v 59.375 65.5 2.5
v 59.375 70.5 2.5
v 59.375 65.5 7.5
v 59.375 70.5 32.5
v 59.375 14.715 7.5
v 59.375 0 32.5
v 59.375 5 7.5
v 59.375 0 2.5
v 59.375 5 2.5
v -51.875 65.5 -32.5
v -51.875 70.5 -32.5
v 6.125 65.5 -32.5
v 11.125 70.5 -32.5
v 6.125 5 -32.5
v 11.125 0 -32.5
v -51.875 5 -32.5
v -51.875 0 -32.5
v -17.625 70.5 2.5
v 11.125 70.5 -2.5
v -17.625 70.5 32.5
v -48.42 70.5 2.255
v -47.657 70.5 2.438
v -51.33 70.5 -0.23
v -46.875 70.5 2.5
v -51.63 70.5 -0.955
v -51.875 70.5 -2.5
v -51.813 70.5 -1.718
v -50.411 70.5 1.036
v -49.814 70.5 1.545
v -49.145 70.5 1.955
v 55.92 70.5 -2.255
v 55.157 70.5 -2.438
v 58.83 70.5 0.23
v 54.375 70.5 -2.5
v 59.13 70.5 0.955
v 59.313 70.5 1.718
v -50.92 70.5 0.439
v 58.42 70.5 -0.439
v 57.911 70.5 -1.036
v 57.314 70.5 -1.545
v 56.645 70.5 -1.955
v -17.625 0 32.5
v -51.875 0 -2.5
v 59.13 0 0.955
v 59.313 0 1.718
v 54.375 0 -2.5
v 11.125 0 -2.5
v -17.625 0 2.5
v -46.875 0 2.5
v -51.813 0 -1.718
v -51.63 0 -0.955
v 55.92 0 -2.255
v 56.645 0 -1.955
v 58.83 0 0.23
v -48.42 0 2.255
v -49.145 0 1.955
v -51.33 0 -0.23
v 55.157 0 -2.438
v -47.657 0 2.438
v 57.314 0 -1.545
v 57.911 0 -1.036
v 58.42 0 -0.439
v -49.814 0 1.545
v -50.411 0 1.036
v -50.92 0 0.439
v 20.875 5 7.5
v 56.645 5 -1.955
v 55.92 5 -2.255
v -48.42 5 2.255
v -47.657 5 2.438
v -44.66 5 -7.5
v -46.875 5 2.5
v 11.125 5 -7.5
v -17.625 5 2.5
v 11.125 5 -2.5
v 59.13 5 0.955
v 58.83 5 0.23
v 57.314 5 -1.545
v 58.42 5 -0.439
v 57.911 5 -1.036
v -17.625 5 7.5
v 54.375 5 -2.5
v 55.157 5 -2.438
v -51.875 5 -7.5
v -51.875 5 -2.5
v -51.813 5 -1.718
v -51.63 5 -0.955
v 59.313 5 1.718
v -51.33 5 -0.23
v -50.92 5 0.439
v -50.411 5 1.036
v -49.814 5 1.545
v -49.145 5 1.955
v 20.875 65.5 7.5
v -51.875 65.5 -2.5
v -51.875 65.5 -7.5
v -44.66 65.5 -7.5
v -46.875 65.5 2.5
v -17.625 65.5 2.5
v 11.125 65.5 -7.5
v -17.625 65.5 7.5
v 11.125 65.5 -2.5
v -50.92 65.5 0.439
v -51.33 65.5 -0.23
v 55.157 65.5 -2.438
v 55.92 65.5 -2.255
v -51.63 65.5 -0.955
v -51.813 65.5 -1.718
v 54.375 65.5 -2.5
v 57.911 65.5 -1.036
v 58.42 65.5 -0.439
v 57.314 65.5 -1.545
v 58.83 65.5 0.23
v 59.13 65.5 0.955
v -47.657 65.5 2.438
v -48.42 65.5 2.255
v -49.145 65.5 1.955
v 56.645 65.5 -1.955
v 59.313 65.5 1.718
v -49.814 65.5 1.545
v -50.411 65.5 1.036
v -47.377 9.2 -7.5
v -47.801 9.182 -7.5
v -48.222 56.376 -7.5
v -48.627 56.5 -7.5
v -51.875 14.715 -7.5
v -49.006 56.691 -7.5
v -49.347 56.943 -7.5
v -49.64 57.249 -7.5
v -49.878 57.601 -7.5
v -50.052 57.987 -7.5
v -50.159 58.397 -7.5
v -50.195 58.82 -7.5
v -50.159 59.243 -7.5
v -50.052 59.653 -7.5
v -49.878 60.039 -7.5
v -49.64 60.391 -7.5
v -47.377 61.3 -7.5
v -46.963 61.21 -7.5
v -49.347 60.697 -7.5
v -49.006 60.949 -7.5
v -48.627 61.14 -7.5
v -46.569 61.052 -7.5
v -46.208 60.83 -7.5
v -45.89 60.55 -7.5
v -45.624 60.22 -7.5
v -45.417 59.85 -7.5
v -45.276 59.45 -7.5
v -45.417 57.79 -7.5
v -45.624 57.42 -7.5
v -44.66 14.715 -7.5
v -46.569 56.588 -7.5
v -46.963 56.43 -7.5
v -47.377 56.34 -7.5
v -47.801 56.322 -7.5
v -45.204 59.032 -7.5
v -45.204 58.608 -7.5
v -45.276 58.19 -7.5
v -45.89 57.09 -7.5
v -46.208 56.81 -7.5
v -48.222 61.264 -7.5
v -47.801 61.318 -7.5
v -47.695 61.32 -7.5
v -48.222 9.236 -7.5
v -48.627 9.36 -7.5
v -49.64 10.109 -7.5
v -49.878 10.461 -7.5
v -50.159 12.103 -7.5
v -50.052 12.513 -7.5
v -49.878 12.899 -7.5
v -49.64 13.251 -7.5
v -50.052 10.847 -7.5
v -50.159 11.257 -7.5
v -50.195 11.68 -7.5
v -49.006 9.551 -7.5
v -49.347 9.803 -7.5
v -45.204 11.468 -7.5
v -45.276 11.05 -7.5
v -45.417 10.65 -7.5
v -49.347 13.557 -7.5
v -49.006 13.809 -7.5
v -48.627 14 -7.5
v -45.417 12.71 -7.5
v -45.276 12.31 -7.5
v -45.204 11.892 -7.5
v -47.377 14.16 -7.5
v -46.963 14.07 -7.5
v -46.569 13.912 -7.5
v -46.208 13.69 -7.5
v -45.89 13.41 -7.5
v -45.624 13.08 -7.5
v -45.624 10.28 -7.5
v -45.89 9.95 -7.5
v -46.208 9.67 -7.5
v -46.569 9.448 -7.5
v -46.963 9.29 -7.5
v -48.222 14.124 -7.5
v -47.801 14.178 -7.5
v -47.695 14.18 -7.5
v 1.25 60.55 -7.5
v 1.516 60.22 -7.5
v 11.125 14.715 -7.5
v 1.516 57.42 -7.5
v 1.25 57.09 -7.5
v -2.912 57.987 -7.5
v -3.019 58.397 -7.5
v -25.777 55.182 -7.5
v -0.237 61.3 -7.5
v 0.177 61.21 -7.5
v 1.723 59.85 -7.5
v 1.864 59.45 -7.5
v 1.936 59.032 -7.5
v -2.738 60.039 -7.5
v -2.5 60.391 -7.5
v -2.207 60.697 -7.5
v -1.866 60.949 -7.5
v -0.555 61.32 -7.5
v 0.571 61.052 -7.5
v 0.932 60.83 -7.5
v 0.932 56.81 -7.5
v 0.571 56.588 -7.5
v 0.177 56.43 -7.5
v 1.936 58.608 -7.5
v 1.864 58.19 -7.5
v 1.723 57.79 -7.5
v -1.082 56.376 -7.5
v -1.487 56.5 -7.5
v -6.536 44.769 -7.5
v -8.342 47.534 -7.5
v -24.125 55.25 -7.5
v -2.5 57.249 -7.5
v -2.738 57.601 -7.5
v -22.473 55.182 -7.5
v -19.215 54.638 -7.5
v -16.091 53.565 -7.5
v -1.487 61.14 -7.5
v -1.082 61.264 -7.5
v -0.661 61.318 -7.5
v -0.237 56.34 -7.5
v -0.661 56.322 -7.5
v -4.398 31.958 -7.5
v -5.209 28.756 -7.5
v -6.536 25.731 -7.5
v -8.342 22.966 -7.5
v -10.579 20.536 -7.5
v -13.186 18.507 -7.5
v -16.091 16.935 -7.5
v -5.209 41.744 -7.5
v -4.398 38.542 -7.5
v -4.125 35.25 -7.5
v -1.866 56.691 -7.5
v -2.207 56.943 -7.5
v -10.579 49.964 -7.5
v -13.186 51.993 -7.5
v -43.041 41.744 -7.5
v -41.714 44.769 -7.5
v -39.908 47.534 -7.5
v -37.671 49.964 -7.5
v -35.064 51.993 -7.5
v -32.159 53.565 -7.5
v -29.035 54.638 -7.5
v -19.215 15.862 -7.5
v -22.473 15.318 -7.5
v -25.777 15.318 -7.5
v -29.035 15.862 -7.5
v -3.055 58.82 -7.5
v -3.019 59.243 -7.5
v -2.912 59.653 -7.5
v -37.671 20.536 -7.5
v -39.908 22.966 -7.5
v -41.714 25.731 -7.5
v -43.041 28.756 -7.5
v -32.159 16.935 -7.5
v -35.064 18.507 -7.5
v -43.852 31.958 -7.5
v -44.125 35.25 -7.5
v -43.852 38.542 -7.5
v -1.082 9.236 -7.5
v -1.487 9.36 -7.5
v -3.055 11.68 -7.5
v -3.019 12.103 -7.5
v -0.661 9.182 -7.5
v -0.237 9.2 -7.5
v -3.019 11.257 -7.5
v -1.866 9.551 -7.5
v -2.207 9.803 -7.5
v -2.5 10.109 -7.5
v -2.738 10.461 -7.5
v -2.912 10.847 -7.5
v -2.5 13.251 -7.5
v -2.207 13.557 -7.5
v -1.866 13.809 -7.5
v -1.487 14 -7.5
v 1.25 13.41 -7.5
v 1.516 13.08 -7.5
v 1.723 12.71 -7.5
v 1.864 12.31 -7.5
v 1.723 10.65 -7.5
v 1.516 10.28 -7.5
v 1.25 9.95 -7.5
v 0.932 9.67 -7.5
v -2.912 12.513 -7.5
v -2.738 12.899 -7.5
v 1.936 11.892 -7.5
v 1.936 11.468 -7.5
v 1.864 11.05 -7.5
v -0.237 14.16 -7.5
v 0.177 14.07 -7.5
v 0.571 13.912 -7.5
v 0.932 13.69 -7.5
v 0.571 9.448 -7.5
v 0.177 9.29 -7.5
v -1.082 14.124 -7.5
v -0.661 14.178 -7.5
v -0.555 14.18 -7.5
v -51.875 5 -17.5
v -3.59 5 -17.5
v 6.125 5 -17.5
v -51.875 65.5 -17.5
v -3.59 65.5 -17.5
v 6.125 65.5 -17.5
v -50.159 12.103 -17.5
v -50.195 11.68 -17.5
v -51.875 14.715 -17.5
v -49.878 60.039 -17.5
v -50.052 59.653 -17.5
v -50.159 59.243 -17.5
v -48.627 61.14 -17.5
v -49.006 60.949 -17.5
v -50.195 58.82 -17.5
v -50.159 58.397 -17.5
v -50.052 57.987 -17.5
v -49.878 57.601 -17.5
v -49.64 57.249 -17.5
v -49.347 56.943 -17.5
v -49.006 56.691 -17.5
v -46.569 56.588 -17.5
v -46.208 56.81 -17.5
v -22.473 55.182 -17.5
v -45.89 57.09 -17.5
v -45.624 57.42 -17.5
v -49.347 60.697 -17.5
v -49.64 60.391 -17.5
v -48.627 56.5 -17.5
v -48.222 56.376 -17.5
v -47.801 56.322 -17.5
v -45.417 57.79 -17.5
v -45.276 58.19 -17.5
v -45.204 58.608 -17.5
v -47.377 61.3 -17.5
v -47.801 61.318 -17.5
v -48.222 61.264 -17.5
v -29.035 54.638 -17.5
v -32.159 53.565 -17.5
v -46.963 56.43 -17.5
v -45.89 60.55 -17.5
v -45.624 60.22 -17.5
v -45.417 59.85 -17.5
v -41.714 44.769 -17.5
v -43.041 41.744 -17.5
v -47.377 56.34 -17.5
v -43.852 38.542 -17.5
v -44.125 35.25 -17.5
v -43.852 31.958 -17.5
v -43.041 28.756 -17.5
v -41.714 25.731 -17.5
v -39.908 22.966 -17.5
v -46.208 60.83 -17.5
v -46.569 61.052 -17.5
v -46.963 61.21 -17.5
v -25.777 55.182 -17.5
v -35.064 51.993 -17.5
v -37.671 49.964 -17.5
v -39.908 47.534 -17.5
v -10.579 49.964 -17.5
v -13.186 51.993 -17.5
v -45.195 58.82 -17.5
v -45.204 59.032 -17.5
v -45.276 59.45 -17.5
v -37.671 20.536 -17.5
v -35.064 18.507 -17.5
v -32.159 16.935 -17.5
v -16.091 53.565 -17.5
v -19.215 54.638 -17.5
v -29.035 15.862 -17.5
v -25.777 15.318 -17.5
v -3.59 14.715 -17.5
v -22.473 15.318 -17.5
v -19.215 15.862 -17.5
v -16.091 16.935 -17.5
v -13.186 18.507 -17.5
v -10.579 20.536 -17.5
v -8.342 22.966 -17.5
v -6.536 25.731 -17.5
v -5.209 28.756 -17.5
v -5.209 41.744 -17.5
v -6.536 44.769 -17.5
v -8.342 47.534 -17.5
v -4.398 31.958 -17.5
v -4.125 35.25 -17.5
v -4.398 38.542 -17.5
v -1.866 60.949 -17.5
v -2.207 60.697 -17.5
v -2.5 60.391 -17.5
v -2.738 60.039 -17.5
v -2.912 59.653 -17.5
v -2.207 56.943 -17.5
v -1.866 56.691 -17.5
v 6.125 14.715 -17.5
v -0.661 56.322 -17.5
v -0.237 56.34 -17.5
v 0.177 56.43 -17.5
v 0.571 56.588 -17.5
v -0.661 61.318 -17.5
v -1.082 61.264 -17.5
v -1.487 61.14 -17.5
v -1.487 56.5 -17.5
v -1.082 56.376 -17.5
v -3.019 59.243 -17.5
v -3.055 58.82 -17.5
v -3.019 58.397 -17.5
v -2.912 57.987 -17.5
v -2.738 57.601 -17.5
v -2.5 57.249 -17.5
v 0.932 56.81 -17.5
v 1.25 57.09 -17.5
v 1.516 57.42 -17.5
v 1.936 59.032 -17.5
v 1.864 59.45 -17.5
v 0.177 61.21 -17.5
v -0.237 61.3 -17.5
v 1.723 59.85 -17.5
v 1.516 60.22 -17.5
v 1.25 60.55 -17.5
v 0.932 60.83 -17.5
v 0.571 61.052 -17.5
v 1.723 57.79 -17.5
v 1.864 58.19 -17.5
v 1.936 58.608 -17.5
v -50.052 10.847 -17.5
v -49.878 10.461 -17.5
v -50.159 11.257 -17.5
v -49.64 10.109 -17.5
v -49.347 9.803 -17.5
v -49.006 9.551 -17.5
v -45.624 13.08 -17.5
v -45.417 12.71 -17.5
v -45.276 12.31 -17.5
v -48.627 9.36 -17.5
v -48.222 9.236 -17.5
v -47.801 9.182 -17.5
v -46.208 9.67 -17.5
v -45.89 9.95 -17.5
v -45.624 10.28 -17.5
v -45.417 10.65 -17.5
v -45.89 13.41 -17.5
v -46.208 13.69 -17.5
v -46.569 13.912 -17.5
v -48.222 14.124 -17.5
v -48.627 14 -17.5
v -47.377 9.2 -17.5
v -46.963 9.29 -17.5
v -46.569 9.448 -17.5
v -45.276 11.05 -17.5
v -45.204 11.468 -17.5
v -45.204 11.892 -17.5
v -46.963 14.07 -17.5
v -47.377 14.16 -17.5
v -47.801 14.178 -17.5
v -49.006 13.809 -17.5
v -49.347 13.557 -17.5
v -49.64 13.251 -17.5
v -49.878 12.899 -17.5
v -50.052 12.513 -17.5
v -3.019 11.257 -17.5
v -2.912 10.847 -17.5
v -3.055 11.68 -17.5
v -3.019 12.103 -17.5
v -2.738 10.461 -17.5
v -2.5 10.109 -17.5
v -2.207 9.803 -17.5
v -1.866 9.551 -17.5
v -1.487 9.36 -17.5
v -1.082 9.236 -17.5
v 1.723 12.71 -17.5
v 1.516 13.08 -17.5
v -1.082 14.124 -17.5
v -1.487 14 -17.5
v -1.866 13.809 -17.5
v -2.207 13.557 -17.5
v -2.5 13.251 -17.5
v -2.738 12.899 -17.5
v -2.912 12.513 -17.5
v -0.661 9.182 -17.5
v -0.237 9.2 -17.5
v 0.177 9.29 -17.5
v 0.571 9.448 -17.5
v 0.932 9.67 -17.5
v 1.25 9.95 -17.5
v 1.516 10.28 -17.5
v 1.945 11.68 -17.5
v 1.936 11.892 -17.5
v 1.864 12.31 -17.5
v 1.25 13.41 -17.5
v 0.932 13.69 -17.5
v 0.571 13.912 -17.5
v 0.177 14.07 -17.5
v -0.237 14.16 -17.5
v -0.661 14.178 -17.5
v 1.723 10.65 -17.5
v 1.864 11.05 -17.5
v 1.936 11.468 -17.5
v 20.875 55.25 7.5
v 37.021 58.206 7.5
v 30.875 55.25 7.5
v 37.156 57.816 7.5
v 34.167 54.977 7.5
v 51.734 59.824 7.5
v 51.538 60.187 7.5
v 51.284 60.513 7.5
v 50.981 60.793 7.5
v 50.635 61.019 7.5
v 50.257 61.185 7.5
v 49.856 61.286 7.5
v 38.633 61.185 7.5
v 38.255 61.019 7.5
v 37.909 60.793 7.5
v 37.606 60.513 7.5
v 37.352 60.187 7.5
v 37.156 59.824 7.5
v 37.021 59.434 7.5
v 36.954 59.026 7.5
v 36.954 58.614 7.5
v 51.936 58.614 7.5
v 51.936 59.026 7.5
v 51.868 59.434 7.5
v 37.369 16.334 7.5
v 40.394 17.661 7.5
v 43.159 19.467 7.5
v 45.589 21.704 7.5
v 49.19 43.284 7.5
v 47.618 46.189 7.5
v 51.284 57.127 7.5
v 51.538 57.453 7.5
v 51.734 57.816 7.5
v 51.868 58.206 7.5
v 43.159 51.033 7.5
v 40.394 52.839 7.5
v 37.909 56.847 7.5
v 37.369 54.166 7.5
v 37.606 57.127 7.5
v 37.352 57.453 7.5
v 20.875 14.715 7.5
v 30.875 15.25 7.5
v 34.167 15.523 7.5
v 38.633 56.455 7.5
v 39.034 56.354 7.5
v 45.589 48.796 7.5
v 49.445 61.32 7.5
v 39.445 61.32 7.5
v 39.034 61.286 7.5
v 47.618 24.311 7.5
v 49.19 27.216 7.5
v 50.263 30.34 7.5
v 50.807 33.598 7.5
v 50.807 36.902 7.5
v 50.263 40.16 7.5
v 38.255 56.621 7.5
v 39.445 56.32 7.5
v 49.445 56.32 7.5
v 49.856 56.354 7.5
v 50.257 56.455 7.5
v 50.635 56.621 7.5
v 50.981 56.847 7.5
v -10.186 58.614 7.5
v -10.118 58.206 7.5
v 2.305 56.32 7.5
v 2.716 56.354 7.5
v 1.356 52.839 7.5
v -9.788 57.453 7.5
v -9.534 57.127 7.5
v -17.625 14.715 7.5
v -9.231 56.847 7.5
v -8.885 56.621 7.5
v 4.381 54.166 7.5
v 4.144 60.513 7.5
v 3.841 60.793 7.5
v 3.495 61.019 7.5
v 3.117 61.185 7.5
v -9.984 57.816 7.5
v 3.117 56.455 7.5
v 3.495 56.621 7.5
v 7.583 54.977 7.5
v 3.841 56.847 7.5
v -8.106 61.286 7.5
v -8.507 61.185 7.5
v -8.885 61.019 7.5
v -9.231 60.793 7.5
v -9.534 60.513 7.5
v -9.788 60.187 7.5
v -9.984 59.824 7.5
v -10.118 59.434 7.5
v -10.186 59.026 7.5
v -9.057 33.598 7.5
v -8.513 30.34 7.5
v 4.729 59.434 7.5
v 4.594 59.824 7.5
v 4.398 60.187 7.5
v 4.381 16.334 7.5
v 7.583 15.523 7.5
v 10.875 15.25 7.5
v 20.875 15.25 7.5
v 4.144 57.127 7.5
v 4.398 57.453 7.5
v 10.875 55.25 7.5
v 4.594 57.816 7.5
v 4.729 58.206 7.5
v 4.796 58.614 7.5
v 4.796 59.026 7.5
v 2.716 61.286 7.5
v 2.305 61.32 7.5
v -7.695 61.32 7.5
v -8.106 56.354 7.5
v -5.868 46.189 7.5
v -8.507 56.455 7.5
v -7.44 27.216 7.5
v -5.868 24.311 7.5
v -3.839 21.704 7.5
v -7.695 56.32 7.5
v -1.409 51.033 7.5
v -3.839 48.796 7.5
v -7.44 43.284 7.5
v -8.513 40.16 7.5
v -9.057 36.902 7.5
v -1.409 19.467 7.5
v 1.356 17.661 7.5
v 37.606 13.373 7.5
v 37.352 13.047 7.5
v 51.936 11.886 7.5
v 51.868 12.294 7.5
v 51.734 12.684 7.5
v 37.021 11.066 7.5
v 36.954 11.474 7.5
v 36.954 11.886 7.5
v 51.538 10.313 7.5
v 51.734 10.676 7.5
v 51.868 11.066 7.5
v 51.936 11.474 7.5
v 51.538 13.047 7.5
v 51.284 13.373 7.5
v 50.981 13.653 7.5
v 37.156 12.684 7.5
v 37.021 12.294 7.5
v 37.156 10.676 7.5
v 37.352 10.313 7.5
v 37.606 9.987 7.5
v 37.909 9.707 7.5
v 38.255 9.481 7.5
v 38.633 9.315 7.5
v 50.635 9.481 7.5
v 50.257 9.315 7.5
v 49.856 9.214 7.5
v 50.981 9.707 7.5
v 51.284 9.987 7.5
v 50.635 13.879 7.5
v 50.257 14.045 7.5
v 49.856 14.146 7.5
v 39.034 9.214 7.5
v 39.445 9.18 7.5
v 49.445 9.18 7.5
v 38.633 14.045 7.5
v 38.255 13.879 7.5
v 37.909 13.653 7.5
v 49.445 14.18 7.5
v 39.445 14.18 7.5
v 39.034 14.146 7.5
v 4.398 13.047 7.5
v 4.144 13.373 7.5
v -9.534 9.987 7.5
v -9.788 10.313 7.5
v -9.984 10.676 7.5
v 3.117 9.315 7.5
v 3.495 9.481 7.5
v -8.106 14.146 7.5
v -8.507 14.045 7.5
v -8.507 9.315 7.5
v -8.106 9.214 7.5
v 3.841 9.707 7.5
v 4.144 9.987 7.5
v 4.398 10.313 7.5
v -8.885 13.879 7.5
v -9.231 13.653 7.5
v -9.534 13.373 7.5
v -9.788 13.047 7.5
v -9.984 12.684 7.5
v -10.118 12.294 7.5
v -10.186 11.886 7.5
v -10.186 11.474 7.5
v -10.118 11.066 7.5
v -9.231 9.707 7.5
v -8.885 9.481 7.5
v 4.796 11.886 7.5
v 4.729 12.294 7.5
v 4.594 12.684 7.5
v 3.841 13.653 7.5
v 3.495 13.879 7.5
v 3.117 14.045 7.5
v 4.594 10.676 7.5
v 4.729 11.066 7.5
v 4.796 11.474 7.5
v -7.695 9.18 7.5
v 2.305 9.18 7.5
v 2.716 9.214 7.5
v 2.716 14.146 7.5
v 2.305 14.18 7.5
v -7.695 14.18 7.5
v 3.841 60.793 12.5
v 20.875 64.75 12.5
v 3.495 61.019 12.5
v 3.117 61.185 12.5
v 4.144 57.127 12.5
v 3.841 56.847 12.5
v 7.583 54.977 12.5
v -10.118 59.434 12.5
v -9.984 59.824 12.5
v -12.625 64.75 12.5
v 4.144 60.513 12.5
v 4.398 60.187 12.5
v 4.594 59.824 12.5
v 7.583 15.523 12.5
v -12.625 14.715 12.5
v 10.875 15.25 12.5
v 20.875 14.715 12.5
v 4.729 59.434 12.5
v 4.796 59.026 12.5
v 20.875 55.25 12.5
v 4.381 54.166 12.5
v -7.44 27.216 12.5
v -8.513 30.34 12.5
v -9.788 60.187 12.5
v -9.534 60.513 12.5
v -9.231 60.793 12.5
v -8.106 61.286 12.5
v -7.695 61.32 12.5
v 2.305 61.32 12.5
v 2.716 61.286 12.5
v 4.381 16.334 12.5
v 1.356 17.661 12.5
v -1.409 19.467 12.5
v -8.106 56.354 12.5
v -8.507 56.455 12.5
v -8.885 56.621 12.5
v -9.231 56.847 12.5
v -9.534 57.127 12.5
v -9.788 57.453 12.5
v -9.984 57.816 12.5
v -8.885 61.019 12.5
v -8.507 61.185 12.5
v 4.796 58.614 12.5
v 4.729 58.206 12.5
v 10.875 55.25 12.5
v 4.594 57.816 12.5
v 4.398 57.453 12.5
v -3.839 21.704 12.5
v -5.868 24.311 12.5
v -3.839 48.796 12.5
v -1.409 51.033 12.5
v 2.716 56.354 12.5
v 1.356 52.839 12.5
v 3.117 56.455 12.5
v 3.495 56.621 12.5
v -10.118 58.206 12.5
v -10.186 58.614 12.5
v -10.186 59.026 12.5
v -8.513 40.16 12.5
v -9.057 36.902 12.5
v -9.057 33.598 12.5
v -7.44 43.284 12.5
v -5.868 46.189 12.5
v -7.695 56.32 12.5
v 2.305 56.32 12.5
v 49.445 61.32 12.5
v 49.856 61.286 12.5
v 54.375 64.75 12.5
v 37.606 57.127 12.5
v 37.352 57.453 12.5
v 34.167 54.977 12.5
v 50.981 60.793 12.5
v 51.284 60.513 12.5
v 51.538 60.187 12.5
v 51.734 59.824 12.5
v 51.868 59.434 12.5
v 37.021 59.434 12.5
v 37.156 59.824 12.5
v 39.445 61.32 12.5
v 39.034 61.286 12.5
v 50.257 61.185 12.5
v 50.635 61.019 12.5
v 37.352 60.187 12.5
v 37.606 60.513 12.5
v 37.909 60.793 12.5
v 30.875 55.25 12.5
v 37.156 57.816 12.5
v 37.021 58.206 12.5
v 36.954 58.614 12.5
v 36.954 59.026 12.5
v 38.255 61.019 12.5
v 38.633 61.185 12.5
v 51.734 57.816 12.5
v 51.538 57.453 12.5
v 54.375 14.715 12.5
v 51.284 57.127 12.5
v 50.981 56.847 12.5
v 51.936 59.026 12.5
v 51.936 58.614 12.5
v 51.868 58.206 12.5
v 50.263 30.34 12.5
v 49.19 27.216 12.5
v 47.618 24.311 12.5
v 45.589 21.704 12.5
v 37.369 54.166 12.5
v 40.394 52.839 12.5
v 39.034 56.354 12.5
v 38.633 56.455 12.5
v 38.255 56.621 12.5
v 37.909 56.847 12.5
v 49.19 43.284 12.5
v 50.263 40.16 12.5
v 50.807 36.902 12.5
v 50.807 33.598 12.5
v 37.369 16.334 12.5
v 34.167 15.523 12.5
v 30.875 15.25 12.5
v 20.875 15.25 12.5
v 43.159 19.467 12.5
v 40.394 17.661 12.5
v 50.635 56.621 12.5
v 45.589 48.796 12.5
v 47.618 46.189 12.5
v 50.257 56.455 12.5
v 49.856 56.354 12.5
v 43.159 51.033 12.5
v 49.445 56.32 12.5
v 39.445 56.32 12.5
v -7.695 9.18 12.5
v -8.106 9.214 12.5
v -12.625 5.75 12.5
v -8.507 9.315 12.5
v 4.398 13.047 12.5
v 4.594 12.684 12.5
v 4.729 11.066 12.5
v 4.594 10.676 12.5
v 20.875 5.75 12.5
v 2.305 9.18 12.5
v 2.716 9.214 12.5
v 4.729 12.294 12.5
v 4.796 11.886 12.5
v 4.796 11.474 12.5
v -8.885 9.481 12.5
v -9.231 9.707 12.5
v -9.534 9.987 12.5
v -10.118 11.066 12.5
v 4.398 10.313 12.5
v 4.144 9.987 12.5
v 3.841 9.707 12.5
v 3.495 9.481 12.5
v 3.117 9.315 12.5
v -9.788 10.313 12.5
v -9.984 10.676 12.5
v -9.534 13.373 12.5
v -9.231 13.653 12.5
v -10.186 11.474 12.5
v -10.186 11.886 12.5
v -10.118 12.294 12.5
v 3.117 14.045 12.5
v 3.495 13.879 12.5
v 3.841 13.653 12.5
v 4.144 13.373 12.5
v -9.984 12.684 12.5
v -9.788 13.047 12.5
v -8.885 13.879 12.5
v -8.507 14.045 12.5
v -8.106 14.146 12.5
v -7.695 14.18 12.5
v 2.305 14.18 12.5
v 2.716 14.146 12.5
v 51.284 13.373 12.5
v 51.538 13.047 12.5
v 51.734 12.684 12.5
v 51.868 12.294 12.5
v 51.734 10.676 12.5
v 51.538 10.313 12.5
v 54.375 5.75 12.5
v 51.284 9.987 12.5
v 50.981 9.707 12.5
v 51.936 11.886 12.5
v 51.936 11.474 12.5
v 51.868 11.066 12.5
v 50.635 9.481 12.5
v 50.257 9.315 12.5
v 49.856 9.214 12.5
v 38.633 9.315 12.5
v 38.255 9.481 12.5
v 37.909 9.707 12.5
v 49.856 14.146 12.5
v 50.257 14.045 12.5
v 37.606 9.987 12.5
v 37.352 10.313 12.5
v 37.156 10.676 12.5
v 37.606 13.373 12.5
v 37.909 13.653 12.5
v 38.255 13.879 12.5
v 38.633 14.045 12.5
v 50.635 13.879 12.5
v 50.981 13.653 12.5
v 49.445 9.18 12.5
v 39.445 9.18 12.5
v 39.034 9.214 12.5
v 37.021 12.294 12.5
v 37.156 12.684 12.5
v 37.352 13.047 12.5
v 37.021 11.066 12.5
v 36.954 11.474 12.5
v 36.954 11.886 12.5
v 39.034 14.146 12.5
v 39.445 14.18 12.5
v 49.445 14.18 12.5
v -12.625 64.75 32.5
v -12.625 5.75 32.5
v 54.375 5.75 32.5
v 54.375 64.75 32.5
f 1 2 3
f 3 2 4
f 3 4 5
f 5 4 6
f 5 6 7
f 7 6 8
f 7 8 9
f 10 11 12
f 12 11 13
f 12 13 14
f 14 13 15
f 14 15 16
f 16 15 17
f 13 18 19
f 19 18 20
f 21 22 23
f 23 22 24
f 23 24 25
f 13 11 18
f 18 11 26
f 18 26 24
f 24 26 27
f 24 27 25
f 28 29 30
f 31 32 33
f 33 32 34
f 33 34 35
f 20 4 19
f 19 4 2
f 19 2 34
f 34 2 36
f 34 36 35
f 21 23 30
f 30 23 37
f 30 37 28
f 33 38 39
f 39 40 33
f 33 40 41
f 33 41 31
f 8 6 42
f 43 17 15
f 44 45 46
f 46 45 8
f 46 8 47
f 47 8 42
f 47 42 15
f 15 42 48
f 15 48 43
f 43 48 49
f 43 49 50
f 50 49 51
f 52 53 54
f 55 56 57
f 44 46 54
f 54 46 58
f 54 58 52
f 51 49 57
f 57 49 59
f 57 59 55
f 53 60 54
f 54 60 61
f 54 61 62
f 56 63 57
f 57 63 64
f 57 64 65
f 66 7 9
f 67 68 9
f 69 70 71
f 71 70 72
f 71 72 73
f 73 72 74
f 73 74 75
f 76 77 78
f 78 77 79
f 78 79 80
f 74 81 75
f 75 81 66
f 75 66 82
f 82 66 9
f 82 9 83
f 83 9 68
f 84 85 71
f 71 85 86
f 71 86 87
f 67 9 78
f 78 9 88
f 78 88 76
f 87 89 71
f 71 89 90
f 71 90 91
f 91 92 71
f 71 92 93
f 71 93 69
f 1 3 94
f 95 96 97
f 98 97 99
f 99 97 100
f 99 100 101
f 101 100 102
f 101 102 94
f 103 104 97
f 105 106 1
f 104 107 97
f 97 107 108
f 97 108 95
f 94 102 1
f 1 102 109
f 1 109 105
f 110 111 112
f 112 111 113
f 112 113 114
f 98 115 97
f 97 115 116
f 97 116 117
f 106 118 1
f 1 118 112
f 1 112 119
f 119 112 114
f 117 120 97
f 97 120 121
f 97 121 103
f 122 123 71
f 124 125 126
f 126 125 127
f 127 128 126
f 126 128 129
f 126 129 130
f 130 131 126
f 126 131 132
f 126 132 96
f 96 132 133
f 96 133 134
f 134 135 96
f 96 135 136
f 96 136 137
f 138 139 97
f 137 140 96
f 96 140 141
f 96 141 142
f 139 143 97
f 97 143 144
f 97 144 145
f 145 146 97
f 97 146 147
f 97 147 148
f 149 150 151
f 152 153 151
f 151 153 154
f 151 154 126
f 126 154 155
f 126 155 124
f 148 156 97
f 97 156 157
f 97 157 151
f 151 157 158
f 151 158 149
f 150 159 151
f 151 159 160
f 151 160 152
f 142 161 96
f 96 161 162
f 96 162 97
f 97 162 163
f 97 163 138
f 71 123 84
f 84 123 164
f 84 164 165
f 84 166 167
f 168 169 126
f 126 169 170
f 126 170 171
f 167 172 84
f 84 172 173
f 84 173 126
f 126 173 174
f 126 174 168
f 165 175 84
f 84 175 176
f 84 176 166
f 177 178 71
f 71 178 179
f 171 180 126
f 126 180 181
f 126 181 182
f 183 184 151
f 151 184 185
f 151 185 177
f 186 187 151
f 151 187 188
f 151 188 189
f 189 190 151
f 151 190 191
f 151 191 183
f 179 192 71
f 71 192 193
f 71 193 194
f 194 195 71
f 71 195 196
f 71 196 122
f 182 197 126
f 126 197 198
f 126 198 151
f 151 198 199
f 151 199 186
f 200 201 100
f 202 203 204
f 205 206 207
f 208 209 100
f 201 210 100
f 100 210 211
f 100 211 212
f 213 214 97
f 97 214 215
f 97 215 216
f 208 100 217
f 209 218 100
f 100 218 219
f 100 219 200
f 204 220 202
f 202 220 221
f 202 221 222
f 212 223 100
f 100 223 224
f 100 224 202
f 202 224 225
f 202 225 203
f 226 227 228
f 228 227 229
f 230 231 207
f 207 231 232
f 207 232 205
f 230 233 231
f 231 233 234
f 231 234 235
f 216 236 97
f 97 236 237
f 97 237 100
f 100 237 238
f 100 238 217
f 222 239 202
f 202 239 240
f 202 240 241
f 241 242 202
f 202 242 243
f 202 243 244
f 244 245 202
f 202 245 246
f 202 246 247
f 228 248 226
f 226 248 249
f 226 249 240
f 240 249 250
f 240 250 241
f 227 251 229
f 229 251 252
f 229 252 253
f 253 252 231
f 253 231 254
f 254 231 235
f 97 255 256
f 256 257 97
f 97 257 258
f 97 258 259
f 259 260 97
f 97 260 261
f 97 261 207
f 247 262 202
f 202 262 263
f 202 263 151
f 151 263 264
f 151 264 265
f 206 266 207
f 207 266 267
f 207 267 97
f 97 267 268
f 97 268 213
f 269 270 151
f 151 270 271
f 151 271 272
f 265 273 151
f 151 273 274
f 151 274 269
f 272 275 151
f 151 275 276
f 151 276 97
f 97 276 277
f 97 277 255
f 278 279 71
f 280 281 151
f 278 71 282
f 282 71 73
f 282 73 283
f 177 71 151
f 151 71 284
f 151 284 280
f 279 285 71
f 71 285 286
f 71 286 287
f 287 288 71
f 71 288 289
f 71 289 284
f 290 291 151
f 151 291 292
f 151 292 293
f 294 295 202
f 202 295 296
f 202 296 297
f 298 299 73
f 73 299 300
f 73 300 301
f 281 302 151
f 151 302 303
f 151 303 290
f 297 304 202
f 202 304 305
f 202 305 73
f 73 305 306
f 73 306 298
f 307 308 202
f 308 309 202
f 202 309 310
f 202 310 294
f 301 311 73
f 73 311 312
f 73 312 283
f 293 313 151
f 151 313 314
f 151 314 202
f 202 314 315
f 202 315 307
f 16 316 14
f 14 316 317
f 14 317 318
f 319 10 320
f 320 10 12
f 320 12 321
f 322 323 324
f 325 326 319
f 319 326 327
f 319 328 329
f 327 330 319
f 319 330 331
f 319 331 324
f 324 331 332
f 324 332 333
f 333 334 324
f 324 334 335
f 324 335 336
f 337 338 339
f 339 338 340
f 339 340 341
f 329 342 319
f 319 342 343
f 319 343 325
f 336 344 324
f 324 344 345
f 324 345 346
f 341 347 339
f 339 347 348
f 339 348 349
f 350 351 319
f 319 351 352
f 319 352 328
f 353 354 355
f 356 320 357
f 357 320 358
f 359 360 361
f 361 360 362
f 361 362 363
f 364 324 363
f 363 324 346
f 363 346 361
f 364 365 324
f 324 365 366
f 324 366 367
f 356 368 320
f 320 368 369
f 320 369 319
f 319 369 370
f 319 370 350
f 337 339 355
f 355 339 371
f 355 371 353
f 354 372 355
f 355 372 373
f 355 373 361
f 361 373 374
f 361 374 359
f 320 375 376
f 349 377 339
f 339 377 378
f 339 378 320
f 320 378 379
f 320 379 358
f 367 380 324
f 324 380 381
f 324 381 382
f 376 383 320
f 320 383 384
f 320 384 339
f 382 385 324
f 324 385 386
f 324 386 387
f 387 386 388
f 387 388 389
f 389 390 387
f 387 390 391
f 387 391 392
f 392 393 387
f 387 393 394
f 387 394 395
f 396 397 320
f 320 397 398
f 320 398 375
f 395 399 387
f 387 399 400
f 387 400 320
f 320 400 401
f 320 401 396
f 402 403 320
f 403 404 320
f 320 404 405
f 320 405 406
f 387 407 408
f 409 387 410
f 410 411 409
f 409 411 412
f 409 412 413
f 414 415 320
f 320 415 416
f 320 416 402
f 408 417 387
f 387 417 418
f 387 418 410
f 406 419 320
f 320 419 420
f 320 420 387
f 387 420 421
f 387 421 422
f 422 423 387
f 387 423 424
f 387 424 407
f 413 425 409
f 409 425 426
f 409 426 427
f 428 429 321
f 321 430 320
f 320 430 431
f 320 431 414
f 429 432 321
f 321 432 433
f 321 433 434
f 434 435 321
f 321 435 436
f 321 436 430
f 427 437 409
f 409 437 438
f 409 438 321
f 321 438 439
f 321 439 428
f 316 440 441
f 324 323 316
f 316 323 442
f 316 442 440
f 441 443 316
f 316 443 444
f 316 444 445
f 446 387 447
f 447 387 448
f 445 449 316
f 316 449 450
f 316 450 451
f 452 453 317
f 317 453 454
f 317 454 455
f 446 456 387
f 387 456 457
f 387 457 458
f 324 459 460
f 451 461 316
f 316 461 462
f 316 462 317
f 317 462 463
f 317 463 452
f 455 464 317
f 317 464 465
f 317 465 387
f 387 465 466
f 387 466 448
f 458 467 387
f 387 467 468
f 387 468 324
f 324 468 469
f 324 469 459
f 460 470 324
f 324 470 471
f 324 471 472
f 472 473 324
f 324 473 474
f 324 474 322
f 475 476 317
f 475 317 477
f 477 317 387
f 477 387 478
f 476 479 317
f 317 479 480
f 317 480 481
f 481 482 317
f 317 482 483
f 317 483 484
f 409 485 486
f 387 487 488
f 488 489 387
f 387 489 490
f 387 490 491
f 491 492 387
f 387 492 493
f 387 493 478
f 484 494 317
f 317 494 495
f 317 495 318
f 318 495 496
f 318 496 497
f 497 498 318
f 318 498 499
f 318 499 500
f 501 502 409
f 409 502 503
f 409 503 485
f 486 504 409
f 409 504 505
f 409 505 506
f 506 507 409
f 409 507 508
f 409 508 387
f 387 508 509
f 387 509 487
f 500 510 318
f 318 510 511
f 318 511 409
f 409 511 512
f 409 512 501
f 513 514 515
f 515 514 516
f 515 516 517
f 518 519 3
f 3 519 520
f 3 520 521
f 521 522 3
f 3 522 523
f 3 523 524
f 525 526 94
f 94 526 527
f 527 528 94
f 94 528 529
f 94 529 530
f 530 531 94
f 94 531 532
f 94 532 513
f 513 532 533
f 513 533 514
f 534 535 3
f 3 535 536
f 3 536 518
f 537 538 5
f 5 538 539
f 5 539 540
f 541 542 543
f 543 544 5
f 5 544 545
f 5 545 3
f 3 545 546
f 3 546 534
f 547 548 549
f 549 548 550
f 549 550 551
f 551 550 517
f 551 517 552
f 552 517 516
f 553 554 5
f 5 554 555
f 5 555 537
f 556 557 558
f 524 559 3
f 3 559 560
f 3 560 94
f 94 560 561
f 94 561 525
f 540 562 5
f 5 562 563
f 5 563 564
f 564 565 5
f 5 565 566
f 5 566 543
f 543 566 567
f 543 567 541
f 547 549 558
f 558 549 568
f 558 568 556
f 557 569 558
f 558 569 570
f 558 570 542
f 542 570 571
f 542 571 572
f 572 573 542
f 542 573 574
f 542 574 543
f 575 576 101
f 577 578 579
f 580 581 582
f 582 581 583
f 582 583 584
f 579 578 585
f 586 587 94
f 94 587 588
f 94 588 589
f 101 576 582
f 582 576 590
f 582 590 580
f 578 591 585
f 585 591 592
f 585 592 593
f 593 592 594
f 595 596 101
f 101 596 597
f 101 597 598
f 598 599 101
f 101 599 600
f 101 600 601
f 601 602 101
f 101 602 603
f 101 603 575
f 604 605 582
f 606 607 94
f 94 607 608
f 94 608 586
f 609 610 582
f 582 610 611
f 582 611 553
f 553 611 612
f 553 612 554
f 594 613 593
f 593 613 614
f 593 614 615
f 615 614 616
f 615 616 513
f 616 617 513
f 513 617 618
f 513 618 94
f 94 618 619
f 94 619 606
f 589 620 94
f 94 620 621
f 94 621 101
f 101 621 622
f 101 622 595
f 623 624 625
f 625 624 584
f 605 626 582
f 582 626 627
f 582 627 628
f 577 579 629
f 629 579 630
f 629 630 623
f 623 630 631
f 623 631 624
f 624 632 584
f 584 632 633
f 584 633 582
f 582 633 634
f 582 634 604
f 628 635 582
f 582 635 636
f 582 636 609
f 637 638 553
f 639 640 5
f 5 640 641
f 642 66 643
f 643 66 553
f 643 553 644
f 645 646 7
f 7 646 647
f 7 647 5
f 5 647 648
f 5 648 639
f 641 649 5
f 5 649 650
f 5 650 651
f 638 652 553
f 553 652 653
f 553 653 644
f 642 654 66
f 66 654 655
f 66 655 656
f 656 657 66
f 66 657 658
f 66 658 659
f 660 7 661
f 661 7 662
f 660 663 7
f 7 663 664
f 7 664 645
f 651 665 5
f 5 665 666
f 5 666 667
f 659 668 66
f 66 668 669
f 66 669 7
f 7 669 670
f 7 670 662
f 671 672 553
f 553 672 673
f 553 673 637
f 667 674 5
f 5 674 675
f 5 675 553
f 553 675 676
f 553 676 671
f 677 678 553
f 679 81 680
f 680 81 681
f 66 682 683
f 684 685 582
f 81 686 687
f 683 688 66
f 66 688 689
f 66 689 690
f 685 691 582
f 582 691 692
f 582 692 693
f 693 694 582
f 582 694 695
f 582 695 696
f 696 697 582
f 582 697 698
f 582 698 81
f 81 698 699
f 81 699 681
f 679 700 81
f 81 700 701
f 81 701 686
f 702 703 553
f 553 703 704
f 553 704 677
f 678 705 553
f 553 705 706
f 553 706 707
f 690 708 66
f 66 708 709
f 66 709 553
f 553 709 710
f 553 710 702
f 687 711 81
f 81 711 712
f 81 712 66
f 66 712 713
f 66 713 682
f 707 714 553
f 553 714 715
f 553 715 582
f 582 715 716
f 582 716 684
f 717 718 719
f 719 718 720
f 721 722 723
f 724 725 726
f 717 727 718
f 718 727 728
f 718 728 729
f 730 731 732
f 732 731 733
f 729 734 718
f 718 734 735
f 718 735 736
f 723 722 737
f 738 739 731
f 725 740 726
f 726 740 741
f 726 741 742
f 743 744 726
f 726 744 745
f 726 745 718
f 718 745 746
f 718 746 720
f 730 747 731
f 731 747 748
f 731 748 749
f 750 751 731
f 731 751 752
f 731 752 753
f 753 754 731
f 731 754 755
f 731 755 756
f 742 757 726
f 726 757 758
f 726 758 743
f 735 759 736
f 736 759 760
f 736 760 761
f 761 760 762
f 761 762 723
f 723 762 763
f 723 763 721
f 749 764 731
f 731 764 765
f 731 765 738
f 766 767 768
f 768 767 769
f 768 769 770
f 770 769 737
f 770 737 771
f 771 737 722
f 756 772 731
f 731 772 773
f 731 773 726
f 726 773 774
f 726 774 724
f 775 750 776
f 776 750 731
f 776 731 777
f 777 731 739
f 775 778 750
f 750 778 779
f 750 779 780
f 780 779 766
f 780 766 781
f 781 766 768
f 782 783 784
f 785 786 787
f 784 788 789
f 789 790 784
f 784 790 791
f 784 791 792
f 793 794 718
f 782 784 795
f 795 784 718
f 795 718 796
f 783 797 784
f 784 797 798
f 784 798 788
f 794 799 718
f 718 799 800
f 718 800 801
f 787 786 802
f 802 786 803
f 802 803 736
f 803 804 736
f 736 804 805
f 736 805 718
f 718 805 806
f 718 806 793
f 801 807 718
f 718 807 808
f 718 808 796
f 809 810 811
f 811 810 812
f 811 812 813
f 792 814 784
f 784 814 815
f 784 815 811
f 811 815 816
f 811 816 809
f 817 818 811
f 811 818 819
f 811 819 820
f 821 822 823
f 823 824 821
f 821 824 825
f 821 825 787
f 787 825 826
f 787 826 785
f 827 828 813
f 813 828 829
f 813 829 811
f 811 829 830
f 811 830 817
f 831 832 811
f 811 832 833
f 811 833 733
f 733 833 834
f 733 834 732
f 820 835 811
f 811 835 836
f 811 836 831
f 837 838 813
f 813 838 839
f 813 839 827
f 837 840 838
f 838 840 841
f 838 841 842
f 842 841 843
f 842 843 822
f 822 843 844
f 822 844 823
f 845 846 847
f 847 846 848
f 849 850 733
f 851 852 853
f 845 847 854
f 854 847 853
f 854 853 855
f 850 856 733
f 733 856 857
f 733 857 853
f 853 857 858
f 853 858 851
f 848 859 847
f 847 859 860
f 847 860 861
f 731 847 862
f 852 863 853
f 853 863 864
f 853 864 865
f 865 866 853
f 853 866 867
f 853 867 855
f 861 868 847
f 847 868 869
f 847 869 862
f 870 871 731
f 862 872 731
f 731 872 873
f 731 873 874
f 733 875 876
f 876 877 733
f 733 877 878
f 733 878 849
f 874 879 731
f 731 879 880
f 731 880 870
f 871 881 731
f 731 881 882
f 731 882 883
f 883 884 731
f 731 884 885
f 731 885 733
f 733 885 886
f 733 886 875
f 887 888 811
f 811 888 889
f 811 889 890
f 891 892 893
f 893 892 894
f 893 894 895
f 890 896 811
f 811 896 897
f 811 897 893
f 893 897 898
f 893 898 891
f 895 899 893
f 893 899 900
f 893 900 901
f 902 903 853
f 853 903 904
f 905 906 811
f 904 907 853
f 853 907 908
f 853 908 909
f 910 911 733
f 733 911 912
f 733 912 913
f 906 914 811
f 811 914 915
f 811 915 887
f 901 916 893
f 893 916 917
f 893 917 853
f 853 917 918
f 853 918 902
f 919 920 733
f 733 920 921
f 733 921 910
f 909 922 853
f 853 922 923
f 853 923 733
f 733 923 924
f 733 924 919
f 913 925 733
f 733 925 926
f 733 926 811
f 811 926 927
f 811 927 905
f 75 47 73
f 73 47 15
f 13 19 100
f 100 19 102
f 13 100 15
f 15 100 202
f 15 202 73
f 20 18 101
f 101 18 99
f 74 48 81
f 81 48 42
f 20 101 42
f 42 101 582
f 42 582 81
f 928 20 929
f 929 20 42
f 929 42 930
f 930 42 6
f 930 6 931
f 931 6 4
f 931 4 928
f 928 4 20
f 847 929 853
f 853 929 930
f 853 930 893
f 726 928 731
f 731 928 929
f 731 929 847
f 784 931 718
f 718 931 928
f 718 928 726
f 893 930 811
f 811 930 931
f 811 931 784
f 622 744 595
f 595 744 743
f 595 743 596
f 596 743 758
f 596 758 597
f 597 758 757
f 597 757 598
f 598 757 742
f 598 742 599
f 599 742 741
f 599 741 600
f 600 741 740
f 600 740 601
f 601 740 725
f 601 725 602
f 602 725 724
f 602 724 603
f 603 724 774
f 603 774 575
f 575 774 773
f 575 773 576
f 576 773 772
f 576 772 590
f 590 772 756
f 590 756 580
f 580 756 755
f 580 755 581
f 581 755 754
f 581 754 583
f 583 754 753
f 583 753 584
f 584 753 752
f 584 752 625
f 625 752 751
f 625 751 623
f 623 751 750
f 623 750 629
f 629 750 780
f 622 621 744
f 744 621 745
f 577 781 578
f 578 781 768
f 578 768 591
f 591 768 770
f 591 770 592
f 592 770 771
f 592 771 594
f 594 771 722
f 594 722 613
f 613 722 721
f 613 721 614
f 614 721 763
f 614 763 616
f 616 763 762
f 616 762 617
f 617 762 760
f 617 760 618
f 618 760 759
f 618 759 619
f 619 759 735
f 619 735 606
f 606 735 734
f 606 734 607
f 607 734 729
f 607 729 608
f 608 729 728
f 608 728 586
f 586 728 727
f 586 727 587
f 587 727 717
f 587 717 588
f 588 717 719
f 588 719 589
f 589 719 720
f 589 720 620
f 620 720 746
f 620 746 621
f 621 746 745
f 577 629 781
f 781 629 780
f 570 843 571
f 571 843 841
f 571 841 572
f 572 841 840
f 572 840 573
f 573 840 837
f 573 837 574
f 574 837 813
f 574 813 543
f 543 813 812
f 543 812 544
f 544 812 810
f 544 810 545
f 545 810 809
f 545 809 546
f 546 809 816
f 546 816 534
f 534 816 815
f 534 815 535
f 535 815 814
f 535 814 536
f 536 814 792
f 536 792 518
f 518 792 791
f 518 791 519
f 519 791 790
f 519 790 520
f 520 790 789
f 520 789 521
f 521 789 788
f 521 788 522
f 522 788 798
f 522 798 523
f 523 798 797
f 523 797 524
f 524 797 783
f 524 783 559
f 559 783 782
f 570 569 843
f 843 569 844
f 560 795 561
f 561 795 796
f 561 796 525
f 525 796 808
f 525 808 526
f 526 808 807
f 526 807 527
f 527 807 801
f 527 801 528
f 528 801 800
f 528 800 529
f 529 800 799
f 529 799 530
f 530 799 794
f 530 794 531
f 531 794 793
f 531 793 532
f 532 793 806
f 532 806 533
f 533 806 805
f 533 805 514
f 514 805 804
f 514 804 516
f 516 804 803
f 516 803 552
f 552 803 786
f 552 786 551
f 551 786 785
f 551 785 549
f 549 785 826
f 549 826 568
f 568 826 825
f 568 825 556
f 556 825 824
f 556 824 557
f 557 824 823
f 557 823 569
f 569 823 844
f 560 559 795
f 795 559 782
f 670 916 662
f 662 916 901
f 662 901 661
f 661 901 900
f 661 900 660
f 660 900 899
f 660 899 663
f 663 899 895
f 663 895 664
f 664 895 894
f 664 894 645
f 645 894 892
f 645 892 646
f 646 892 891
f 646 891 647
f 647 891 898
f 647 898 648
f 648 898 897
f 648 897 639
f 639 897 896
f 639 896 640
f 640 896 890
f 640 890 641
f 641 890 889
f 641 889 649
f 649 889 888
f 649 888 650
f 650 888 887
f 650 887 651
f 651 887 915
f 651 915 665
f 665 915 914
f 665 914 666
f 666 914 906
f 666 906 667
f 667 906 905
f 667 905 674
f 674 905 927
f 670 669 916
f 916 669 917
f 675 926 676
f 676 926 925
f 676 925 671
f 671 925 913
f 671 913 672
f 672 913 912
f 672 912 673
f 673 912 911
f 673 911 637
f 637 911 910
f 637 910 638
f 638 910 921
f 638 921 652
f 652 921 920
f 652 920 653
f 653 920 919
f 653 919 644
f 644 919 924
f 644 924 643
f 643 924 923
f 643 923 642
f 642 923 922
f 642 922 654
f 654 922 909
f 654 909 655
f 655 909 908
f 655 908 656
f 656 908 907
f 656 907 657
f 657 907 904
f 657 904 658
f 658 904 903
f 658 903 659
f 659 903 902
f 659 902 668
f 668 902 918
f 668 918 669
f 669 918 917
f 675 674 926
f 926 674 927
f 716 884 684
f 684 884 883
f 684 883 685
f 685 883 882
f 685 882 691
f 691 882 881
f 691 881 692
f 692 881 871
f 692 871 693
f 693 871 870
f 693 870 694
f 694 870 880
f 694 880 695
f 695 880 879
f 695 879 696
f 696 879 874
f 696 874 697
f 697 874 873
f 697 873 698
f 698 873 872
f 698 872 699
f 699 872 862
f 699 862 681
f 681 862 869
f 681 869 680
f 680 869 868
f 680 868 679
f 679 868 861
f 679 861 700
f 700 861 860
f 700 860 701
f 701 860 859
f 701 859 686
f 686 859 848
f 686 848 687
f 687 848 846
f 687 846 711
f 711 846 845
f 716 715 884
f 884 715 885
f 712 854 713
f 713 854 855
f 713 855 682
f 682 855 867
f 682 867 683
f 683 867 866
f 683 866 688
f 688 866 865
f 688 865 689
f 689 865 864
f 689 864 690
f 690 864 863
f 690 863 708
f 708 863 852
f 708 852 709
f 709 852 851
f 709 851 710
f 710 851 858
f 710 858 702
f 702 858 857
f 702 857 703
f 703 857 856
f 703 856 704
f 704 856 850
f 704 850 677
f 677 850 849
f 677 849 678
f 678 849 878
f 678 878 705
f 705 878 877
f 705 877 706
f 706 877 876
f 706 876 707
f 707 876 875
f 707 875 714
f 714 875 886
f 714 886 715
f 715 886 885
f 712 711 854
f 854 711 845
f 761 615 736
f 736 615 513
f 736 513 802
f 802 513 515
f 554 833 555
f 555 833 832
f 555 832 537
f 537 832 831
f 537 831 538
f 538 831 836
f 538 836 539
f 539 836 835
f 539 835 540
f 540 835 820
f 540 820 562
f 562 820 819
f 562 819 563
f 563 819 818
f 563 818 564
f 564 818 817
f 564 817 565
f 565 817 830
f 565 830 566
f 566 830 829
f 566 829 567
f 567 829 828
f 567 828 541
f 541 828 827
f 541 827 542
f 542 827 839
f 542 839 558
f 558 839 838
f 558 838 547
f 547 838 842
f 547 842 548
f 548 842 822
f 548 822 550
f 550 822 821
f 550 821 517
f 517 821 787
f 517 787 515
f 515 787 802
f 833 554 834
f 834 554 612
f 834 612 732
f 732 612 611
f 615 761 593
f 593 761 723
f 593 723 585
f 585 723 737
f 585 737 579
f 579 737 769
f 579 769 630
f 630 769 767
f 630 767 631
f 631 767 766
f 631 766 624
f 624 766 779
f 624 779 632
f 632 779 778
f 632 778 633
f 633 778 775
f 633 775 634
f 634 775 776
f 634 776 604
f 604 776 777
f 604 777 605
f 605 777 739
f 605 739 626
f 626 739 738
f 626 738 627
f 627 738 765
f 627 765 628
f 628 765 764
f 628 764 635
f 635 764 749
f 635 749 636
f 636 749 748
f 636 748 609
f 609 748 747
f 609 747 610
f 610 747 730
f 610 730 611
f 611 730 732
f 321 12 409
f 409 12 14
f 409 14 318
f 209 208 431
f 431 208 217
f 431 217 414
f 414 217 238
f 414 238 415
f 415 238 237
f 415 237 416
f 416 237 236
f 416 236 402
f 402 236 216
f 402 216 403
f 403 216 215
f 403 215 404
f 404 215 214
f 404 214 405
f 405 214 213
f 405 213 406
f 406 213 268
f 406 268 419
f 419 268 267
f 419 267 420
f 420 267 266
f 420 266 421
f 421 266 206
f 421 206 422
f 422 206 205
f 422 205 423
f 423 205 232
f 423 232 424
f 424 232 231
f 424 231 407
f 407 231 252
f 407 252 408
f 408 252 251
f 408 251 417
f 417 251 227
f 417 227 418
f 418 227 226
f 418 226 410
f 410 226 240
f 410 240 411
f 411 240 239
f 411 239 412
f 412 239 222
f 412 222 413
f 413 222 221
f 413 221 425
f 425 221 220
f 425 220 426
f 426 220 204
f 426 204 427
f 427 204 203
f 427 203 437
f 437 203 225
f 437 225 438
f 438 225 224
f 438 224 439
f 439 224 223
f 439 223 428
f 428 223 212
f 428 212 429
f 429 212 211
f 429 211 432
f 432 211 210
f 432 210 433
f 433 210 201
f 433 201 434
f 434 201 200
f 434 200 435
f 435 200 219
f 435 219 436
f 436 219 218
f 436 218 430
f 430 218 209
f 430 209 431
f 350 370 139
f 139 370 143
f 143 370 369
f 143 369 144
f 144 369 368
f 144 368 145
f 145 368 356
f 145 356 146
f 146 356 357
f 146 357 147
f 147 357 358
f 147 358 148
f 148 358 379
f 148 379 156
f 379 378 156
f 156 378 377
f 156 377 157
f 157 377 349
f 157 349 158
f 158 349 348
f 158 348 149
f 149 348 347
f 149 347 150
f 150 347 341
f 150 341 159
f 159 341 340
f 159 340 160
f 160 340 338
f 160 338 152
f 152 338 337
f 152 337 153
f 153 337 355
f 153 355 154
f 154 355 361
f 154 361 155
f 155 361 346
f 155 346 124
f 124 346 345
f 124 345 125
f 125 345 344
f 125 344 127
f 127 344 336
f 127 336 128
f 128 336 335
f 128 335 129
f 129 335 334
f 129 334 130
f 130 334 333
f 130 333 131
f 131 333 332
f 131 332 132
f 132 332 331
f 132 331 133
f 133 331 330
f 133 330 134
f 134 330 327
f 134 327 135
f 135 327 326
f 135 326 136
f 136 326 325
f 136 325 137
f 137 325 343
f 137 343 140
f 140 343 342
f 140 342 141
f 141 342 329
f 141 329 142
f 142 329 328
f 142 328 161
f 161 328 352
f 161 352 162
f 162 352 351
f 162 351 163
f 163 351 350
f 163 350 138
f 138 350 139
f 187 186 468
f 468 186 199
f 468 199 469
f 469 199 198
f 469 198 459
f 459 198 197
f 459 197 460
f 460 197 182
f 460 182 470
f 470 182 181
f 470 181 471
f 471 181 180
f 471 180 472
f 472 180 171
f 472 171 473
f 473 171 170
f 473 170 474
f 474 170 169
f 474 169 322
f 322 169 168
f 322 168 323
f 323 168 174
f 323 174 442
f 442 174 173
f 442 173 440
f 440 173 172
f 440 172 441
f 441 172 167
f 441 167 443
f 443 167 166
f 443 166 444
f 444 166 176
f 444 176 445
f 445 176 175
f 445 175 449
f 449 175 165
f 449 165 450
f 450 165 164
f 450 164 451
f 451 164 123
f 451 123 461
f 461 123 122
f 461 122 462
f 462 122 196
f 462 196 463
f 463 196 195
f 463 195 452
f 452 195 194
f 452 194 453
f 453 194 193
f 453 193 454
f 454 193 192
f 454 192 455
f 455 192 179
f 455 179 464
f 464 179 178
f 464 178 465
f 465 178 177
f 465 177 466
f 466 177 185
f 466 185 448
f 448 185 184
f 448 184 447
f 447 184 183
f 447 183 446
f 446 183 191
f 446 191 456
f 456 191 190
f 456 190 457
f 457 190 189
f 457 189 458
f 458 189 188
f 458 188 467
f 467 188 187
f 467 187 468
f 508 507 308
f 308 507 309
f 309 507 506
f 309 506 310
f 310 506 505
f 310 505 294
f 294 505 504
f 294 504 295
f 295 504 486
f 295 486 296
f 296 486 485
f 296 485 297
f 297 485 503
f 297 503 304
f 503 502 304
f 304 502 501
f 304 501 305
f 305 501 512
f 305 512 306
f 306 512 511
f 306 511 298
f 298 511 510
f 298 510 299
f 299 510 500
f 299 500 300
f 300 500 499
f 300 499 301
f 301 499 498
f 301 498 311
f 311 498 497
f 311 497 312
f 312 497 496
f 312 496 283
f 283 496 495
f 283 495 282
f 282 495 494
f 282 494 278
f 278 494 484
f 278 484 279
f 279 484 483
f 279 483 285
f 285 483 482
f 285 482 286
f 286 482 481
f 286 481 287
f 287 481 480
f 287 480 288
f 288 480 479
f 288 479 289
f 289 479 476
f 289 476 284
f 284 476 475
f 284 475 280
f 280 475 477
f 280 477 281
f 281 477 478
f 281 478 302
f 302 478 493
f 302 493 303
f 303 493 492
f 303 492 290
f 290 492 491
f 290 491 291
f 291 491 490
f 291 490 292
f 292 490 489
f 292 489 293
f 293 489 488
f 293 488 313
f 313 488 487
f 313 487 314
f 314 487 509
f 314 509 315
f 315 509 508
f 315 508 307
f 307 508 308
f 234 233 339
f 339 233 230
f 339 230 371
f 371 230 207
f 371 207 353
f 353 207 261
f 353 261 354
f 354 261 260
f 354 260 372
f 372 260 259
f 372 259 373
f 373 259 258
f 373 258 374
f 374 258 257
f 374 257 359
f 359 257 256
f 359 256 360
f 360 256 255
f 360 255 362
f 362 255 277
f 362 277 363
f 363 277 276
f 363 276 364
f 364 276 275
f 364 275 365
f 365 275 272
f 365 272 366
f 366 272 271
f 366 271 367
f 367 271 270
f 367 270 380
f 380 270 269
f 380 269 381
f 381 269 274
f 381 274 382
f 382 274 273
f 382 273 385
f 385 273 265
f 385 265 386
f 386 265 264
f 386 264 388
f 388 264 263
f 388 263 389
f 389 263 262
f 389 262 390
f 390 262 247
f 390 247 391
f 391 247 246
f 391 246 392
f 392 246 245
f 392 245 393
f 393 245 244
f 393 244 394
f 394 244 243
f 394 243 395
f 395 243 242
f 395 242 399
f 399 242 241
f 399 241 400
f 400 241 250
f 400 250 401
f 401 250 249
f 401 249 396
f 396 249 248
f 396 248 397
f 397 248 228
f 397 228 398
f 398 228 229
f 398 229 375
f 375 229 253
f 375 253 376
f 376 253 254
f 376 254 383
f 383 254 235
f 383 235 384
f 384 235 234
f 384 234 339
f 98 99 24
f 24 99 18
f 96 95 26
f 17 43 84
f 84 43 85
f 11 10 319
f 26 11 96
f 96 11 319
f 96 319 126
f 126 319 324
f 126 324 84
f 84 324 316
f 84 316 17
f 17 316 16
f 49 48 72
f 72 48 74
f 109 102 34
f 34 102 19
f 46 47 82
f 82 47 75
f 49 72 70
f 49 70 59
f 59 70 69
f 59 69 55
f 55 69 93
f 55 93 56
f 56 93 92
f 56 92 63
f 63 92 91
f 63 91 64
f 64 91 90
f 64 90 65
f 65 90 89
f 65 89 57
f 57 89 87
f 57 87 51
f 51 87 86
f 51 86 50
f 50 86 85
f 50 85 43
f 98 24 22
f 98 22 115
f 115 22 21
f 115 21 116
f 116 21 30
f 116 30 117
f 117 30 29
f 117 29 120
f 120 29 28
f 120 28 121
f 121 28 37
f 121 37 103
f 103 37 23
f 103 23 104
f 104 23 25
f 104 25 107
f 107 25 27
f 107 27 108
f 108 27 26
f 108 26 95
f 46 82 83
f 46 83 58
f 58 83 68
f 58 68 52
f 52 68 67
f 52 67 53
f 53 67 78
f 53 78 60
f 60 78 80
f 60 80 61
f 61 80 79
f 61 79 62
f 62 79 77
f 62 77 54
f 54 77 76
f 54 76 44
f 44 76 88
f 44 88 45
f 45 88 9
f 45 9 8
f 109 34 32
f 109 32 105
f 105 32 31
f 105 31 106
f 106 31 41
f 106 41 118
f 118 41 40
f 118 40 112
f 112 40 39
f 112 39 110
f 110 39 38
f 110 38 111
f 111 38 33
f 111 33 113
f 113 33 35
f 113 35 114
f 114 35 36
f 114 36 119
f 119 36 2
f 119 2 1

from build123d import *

# Parameters (mm, degrees)
SKETCH1_W           = 77
SKETCH1_H           = 20
SKETCH1_W_2         = 118.75
SKETCH1_H_2         = 25
SKETCH1_W_3         = 70.5
BOSS_EXTRUDE1_DEPTH = 70.5
SKETCH6_W           = 15
SKETCH6_H           = 60.5
CUT_EXTRUDE2_DEPTH  = 48.25
SKETCH7_W           = 67
SKETCH7_H           = 59
CUT_EXTRUDE3_DEPTH  = 20
CUT_EXTRUDE4_DEPTH  = 5
SKETCH9_W           = 5
SKETCH9_H           = 60.5
CUT_EXTRUDE5_DEPTH  = 48.25
SKETCH10_W          = 15
SKETCH10_H          = 60.5
CUT_EXTRUDE6_DEPTH  = 70.5
SKETCH11_W          = 5
SKETCH11_H          = 60.5
CUT_EXTRUDE7_DEPTH  = 41.75
SKETCH12_W          = 60.5
SKETCH12_H          = 60.5
CUT_EXTRUDE8_DEPTH  = 15
SKETCH13_R          = 20
SKETCH13_R_2        = 2.5
CUT_EXTRUDE9_DEPTH  = 20
SKETCH14_W          = 7.5
SKETCH14_H          = 35
SKETCH14_H_2        = 10
SKETCH14_W_2        = 34.25
SKETCH14_W_3        = 48.25
CUT_EXTRUDE10_DEPTH = 71.5
FILLET2_R           = 5


with BuildPart() as part:
    # Sketch1 → Boss-Extrude1 (new body)
    with BuildSketch(Plane(origin=(0, 0, 0), x_dir=(1, 0, 0), z_dir=(0, 1, 0))):
        with Locations((20.875, -22.5)):
            Rectangle(SKETCH1_W, SKETCH1_H)
        Rectangle(SKETCH1_W_2, SKETCH1_H_2)
        with Locations((-24.125, 22.5)):
            Rectangle(SKETCH1_W_3, SKETCH1_H)
    extrude(amount=BOSS_EXTRUDE1_DEPTH)

    # Sketch6 → Cut-Extrude2 (cut)
    with BuildSketch(Plane(origin=(59.375, 0, 0), x_dir=(0, 0, -1), z_dir=(1, 0, 0))):
        with Locations((0, 35.25)):
            Rectangle(SKETCH6_W, SKETCH6_H)
    extrude(amount=-CUT_EXTRUDE2_DEPTH, mode=Mode.SUBTRACT)

    # Sketch7 → Cut-Extrude3 (cut)
    with BuildSketch(Plane.XY.offset(32.5)):
        with Locations((20.875, 35.25)):
            Rectangle(SKETCH7_W, SKETCH7_H)
    extrude(amount=-CUT_EXTRUDE3_DEPTH, mode=Mode.SUBTRACT)

    # Sketch8 → Cut-Extrude4 (cut)
    with BuildSketch(Plane.XY.offset(12.5)):
        with BuildLine():
            Line((10.875, 55.25), (30.875, 55.25))
            ThreePointArc((30.875, 55.25), (50.875, 35.25), (30.875, 15.25))
            Line((30.875, 15.25), (10.875, 15.25))
            ThreePointArc((10.875, 15.25), (-9.125, 35.25), (10.875, 55.25))
        make_face()
        with BuildLine():
            Line((-7.695, 61.32), (2.305, 61.32))
            ThreePointArc((2.305, 61.32), (4.805, 58.82), (2.305, 56.32))
            Line((2.305, 56.32), (-7.695, 56.32))
            ThreePointArc((-7.695, 56.32), (-10.195, 58.82), (-7.695, 61.32))
        make_face()
        with BuildLine():
            Line((49.445, 61.32), (39.445, 61.32))
            ThreePointArc((39.445, 61.32), (36.945, 58.82), (39.445, 56.32))
            Line((39.445, 56.32), (49.445, 56.32))
            ThreePointArc((49.445, 56.32), (51.945, 58.82), (49.445, 61.32))
        make_face()
        with BuildLine():
            Line((-7.695, 9.18), (2.305, 9.18))
            ThreePointArc((2.305, 9.18), (4.805, 11.68), (2.305, 14.18))
            Line((2.305, 14.18), (-7.695, 14.18))
            ThreePointArc((-7.695, 14.18), (-10.195, 11.68), (-7.695, 9.18))
        make_face()
        with BuildLine():
            Line((49.445, 9.18), (39.445, 9.18))
            ThreePointArc((39.445, 9.18), (36.945, 11.68), (39.445, 14.18))
            Line((39.445, 14.18), (49.445, 14.18))
            ThreePointArc((49.445, 14.18), (51.945, 11.68), (49.445, 9.18))
        make_face()
    extrude(amount=-CUT_EXTRUDE4_DEPTH, mode=Mode.SUBTRACT)

    # Sketch9 → Cut-Extrude5 (cut)
    with BuildSketch(Plane(origin=(59.375, 0, 0), x_dir=(0, 0, -1), z_dir=(1, 0, 0))):
        with Locations((10, 35.25)):
            Rectangle(SKETCH9_W, SKETCH9_H)
    extrude(amount=-CUT_EXTRUDE5_DEPTH, mode=Mode.SUBTRACT)

    # Sketch10 → Cut-Extrude6 (cut)
    with BuildSketch(Plane.ZY.offset(59.375)):
        with Locations((0, 35.25)):
            Rectangle(SKETCH10_W, SKETCH10_H)
    extrude(amount=-CUT_EXTRUDE6_DEPTH, mode=Mode.SUBTRACT)

    # Sketch11 → Cut-Extrude7 (cut)
    with BuildSketch(Plane.ZY.offset(59.375)):
        with Locations((10, 35.25)):
            Rectangle(SKETCH11_W, SKETCH11_H)
    extrude(amount=-CUT_EXTRUDE7_DEPTH, mode=Mode.SUBTRACT)

    # Sketch12 → Cut-Extrude8 (cut)
    with BuildSketch(Plane(origin=(0, 0, -32.5), x_dir=(-1, 0, 0), z_dir=(0, 0, -1))):
        with Locations((24.125, 35.25)):
            Rectangle(SKETCH12_W, SKETCH12_H)
    extrude(amount=-CUT_EXTRUDE8_DEPTH, mode=Mode.SUBTRACT)

    # Sketch13 → Cut-Extrude9 (cut)
    with BuildSketch(Plane(origin=(0, 0, -17.5), x_dir=(-1, 0, 0), z_dir=(0, 0, -1))):
        with Locations((24.125, 35.25)):
            Circle(SKETCH13_R)
        with Locations((0.555, 58.82)):
            Circle(SKETCH13_R_2)
        with Locations((47.695, 58.82)):
            Circle(SKETCH13_R_2)
        with Locations((47.695, 11.68)):
            Circle(SKETCH13_R_2)
        with Locations((0.555, 11.68)):
            Circle(SKETCH13_R_2)
    extrude(amount=-CUT_EXTRUDE9_DEPTH, mode=Mode.SUBTRACT)

    # Sketch14 → Cut-Extrude10 (cut, through all)
    with BuildSketch(Plane(origin=(0, 70.5, 0), x_dir=(1, 0, 0), z_dir=(0, 1, 0))):
        with Locations((-55.625, 15)):
            Rectangle(SKETCH14_W, SKETCH14_H)
        with Locations((-55.625, -7.5)):
            Rectangle(SKETCH14_W, SKETCH14_H_2)
        with Locations((-34.75, -7.5)):
            Rectangle(SKETCH14_W_2, SKETCH14_H_2)
        with Locations((35.25, 7.5)):
            Rectangle(SKETCH14_W_3, SKETCH14_H_2)
    extrude(amount=-CUT_EXTRUDE10_DEPTH, mode=Mode.SUBTRACT)

    # Fillet2
    fillet2_edges = [part.edges().sort_by_distance(p)[0] for p in [
        (-51.875, 68, 2.5),
        (-51.875, 2.5, 2.5),
        (59.375, 68, -2.5),
        (59.375, 2.5, -2.5),
    ]]
    fillet(fillet2_edges, radius=FILLET2_R)


solid = part.part
